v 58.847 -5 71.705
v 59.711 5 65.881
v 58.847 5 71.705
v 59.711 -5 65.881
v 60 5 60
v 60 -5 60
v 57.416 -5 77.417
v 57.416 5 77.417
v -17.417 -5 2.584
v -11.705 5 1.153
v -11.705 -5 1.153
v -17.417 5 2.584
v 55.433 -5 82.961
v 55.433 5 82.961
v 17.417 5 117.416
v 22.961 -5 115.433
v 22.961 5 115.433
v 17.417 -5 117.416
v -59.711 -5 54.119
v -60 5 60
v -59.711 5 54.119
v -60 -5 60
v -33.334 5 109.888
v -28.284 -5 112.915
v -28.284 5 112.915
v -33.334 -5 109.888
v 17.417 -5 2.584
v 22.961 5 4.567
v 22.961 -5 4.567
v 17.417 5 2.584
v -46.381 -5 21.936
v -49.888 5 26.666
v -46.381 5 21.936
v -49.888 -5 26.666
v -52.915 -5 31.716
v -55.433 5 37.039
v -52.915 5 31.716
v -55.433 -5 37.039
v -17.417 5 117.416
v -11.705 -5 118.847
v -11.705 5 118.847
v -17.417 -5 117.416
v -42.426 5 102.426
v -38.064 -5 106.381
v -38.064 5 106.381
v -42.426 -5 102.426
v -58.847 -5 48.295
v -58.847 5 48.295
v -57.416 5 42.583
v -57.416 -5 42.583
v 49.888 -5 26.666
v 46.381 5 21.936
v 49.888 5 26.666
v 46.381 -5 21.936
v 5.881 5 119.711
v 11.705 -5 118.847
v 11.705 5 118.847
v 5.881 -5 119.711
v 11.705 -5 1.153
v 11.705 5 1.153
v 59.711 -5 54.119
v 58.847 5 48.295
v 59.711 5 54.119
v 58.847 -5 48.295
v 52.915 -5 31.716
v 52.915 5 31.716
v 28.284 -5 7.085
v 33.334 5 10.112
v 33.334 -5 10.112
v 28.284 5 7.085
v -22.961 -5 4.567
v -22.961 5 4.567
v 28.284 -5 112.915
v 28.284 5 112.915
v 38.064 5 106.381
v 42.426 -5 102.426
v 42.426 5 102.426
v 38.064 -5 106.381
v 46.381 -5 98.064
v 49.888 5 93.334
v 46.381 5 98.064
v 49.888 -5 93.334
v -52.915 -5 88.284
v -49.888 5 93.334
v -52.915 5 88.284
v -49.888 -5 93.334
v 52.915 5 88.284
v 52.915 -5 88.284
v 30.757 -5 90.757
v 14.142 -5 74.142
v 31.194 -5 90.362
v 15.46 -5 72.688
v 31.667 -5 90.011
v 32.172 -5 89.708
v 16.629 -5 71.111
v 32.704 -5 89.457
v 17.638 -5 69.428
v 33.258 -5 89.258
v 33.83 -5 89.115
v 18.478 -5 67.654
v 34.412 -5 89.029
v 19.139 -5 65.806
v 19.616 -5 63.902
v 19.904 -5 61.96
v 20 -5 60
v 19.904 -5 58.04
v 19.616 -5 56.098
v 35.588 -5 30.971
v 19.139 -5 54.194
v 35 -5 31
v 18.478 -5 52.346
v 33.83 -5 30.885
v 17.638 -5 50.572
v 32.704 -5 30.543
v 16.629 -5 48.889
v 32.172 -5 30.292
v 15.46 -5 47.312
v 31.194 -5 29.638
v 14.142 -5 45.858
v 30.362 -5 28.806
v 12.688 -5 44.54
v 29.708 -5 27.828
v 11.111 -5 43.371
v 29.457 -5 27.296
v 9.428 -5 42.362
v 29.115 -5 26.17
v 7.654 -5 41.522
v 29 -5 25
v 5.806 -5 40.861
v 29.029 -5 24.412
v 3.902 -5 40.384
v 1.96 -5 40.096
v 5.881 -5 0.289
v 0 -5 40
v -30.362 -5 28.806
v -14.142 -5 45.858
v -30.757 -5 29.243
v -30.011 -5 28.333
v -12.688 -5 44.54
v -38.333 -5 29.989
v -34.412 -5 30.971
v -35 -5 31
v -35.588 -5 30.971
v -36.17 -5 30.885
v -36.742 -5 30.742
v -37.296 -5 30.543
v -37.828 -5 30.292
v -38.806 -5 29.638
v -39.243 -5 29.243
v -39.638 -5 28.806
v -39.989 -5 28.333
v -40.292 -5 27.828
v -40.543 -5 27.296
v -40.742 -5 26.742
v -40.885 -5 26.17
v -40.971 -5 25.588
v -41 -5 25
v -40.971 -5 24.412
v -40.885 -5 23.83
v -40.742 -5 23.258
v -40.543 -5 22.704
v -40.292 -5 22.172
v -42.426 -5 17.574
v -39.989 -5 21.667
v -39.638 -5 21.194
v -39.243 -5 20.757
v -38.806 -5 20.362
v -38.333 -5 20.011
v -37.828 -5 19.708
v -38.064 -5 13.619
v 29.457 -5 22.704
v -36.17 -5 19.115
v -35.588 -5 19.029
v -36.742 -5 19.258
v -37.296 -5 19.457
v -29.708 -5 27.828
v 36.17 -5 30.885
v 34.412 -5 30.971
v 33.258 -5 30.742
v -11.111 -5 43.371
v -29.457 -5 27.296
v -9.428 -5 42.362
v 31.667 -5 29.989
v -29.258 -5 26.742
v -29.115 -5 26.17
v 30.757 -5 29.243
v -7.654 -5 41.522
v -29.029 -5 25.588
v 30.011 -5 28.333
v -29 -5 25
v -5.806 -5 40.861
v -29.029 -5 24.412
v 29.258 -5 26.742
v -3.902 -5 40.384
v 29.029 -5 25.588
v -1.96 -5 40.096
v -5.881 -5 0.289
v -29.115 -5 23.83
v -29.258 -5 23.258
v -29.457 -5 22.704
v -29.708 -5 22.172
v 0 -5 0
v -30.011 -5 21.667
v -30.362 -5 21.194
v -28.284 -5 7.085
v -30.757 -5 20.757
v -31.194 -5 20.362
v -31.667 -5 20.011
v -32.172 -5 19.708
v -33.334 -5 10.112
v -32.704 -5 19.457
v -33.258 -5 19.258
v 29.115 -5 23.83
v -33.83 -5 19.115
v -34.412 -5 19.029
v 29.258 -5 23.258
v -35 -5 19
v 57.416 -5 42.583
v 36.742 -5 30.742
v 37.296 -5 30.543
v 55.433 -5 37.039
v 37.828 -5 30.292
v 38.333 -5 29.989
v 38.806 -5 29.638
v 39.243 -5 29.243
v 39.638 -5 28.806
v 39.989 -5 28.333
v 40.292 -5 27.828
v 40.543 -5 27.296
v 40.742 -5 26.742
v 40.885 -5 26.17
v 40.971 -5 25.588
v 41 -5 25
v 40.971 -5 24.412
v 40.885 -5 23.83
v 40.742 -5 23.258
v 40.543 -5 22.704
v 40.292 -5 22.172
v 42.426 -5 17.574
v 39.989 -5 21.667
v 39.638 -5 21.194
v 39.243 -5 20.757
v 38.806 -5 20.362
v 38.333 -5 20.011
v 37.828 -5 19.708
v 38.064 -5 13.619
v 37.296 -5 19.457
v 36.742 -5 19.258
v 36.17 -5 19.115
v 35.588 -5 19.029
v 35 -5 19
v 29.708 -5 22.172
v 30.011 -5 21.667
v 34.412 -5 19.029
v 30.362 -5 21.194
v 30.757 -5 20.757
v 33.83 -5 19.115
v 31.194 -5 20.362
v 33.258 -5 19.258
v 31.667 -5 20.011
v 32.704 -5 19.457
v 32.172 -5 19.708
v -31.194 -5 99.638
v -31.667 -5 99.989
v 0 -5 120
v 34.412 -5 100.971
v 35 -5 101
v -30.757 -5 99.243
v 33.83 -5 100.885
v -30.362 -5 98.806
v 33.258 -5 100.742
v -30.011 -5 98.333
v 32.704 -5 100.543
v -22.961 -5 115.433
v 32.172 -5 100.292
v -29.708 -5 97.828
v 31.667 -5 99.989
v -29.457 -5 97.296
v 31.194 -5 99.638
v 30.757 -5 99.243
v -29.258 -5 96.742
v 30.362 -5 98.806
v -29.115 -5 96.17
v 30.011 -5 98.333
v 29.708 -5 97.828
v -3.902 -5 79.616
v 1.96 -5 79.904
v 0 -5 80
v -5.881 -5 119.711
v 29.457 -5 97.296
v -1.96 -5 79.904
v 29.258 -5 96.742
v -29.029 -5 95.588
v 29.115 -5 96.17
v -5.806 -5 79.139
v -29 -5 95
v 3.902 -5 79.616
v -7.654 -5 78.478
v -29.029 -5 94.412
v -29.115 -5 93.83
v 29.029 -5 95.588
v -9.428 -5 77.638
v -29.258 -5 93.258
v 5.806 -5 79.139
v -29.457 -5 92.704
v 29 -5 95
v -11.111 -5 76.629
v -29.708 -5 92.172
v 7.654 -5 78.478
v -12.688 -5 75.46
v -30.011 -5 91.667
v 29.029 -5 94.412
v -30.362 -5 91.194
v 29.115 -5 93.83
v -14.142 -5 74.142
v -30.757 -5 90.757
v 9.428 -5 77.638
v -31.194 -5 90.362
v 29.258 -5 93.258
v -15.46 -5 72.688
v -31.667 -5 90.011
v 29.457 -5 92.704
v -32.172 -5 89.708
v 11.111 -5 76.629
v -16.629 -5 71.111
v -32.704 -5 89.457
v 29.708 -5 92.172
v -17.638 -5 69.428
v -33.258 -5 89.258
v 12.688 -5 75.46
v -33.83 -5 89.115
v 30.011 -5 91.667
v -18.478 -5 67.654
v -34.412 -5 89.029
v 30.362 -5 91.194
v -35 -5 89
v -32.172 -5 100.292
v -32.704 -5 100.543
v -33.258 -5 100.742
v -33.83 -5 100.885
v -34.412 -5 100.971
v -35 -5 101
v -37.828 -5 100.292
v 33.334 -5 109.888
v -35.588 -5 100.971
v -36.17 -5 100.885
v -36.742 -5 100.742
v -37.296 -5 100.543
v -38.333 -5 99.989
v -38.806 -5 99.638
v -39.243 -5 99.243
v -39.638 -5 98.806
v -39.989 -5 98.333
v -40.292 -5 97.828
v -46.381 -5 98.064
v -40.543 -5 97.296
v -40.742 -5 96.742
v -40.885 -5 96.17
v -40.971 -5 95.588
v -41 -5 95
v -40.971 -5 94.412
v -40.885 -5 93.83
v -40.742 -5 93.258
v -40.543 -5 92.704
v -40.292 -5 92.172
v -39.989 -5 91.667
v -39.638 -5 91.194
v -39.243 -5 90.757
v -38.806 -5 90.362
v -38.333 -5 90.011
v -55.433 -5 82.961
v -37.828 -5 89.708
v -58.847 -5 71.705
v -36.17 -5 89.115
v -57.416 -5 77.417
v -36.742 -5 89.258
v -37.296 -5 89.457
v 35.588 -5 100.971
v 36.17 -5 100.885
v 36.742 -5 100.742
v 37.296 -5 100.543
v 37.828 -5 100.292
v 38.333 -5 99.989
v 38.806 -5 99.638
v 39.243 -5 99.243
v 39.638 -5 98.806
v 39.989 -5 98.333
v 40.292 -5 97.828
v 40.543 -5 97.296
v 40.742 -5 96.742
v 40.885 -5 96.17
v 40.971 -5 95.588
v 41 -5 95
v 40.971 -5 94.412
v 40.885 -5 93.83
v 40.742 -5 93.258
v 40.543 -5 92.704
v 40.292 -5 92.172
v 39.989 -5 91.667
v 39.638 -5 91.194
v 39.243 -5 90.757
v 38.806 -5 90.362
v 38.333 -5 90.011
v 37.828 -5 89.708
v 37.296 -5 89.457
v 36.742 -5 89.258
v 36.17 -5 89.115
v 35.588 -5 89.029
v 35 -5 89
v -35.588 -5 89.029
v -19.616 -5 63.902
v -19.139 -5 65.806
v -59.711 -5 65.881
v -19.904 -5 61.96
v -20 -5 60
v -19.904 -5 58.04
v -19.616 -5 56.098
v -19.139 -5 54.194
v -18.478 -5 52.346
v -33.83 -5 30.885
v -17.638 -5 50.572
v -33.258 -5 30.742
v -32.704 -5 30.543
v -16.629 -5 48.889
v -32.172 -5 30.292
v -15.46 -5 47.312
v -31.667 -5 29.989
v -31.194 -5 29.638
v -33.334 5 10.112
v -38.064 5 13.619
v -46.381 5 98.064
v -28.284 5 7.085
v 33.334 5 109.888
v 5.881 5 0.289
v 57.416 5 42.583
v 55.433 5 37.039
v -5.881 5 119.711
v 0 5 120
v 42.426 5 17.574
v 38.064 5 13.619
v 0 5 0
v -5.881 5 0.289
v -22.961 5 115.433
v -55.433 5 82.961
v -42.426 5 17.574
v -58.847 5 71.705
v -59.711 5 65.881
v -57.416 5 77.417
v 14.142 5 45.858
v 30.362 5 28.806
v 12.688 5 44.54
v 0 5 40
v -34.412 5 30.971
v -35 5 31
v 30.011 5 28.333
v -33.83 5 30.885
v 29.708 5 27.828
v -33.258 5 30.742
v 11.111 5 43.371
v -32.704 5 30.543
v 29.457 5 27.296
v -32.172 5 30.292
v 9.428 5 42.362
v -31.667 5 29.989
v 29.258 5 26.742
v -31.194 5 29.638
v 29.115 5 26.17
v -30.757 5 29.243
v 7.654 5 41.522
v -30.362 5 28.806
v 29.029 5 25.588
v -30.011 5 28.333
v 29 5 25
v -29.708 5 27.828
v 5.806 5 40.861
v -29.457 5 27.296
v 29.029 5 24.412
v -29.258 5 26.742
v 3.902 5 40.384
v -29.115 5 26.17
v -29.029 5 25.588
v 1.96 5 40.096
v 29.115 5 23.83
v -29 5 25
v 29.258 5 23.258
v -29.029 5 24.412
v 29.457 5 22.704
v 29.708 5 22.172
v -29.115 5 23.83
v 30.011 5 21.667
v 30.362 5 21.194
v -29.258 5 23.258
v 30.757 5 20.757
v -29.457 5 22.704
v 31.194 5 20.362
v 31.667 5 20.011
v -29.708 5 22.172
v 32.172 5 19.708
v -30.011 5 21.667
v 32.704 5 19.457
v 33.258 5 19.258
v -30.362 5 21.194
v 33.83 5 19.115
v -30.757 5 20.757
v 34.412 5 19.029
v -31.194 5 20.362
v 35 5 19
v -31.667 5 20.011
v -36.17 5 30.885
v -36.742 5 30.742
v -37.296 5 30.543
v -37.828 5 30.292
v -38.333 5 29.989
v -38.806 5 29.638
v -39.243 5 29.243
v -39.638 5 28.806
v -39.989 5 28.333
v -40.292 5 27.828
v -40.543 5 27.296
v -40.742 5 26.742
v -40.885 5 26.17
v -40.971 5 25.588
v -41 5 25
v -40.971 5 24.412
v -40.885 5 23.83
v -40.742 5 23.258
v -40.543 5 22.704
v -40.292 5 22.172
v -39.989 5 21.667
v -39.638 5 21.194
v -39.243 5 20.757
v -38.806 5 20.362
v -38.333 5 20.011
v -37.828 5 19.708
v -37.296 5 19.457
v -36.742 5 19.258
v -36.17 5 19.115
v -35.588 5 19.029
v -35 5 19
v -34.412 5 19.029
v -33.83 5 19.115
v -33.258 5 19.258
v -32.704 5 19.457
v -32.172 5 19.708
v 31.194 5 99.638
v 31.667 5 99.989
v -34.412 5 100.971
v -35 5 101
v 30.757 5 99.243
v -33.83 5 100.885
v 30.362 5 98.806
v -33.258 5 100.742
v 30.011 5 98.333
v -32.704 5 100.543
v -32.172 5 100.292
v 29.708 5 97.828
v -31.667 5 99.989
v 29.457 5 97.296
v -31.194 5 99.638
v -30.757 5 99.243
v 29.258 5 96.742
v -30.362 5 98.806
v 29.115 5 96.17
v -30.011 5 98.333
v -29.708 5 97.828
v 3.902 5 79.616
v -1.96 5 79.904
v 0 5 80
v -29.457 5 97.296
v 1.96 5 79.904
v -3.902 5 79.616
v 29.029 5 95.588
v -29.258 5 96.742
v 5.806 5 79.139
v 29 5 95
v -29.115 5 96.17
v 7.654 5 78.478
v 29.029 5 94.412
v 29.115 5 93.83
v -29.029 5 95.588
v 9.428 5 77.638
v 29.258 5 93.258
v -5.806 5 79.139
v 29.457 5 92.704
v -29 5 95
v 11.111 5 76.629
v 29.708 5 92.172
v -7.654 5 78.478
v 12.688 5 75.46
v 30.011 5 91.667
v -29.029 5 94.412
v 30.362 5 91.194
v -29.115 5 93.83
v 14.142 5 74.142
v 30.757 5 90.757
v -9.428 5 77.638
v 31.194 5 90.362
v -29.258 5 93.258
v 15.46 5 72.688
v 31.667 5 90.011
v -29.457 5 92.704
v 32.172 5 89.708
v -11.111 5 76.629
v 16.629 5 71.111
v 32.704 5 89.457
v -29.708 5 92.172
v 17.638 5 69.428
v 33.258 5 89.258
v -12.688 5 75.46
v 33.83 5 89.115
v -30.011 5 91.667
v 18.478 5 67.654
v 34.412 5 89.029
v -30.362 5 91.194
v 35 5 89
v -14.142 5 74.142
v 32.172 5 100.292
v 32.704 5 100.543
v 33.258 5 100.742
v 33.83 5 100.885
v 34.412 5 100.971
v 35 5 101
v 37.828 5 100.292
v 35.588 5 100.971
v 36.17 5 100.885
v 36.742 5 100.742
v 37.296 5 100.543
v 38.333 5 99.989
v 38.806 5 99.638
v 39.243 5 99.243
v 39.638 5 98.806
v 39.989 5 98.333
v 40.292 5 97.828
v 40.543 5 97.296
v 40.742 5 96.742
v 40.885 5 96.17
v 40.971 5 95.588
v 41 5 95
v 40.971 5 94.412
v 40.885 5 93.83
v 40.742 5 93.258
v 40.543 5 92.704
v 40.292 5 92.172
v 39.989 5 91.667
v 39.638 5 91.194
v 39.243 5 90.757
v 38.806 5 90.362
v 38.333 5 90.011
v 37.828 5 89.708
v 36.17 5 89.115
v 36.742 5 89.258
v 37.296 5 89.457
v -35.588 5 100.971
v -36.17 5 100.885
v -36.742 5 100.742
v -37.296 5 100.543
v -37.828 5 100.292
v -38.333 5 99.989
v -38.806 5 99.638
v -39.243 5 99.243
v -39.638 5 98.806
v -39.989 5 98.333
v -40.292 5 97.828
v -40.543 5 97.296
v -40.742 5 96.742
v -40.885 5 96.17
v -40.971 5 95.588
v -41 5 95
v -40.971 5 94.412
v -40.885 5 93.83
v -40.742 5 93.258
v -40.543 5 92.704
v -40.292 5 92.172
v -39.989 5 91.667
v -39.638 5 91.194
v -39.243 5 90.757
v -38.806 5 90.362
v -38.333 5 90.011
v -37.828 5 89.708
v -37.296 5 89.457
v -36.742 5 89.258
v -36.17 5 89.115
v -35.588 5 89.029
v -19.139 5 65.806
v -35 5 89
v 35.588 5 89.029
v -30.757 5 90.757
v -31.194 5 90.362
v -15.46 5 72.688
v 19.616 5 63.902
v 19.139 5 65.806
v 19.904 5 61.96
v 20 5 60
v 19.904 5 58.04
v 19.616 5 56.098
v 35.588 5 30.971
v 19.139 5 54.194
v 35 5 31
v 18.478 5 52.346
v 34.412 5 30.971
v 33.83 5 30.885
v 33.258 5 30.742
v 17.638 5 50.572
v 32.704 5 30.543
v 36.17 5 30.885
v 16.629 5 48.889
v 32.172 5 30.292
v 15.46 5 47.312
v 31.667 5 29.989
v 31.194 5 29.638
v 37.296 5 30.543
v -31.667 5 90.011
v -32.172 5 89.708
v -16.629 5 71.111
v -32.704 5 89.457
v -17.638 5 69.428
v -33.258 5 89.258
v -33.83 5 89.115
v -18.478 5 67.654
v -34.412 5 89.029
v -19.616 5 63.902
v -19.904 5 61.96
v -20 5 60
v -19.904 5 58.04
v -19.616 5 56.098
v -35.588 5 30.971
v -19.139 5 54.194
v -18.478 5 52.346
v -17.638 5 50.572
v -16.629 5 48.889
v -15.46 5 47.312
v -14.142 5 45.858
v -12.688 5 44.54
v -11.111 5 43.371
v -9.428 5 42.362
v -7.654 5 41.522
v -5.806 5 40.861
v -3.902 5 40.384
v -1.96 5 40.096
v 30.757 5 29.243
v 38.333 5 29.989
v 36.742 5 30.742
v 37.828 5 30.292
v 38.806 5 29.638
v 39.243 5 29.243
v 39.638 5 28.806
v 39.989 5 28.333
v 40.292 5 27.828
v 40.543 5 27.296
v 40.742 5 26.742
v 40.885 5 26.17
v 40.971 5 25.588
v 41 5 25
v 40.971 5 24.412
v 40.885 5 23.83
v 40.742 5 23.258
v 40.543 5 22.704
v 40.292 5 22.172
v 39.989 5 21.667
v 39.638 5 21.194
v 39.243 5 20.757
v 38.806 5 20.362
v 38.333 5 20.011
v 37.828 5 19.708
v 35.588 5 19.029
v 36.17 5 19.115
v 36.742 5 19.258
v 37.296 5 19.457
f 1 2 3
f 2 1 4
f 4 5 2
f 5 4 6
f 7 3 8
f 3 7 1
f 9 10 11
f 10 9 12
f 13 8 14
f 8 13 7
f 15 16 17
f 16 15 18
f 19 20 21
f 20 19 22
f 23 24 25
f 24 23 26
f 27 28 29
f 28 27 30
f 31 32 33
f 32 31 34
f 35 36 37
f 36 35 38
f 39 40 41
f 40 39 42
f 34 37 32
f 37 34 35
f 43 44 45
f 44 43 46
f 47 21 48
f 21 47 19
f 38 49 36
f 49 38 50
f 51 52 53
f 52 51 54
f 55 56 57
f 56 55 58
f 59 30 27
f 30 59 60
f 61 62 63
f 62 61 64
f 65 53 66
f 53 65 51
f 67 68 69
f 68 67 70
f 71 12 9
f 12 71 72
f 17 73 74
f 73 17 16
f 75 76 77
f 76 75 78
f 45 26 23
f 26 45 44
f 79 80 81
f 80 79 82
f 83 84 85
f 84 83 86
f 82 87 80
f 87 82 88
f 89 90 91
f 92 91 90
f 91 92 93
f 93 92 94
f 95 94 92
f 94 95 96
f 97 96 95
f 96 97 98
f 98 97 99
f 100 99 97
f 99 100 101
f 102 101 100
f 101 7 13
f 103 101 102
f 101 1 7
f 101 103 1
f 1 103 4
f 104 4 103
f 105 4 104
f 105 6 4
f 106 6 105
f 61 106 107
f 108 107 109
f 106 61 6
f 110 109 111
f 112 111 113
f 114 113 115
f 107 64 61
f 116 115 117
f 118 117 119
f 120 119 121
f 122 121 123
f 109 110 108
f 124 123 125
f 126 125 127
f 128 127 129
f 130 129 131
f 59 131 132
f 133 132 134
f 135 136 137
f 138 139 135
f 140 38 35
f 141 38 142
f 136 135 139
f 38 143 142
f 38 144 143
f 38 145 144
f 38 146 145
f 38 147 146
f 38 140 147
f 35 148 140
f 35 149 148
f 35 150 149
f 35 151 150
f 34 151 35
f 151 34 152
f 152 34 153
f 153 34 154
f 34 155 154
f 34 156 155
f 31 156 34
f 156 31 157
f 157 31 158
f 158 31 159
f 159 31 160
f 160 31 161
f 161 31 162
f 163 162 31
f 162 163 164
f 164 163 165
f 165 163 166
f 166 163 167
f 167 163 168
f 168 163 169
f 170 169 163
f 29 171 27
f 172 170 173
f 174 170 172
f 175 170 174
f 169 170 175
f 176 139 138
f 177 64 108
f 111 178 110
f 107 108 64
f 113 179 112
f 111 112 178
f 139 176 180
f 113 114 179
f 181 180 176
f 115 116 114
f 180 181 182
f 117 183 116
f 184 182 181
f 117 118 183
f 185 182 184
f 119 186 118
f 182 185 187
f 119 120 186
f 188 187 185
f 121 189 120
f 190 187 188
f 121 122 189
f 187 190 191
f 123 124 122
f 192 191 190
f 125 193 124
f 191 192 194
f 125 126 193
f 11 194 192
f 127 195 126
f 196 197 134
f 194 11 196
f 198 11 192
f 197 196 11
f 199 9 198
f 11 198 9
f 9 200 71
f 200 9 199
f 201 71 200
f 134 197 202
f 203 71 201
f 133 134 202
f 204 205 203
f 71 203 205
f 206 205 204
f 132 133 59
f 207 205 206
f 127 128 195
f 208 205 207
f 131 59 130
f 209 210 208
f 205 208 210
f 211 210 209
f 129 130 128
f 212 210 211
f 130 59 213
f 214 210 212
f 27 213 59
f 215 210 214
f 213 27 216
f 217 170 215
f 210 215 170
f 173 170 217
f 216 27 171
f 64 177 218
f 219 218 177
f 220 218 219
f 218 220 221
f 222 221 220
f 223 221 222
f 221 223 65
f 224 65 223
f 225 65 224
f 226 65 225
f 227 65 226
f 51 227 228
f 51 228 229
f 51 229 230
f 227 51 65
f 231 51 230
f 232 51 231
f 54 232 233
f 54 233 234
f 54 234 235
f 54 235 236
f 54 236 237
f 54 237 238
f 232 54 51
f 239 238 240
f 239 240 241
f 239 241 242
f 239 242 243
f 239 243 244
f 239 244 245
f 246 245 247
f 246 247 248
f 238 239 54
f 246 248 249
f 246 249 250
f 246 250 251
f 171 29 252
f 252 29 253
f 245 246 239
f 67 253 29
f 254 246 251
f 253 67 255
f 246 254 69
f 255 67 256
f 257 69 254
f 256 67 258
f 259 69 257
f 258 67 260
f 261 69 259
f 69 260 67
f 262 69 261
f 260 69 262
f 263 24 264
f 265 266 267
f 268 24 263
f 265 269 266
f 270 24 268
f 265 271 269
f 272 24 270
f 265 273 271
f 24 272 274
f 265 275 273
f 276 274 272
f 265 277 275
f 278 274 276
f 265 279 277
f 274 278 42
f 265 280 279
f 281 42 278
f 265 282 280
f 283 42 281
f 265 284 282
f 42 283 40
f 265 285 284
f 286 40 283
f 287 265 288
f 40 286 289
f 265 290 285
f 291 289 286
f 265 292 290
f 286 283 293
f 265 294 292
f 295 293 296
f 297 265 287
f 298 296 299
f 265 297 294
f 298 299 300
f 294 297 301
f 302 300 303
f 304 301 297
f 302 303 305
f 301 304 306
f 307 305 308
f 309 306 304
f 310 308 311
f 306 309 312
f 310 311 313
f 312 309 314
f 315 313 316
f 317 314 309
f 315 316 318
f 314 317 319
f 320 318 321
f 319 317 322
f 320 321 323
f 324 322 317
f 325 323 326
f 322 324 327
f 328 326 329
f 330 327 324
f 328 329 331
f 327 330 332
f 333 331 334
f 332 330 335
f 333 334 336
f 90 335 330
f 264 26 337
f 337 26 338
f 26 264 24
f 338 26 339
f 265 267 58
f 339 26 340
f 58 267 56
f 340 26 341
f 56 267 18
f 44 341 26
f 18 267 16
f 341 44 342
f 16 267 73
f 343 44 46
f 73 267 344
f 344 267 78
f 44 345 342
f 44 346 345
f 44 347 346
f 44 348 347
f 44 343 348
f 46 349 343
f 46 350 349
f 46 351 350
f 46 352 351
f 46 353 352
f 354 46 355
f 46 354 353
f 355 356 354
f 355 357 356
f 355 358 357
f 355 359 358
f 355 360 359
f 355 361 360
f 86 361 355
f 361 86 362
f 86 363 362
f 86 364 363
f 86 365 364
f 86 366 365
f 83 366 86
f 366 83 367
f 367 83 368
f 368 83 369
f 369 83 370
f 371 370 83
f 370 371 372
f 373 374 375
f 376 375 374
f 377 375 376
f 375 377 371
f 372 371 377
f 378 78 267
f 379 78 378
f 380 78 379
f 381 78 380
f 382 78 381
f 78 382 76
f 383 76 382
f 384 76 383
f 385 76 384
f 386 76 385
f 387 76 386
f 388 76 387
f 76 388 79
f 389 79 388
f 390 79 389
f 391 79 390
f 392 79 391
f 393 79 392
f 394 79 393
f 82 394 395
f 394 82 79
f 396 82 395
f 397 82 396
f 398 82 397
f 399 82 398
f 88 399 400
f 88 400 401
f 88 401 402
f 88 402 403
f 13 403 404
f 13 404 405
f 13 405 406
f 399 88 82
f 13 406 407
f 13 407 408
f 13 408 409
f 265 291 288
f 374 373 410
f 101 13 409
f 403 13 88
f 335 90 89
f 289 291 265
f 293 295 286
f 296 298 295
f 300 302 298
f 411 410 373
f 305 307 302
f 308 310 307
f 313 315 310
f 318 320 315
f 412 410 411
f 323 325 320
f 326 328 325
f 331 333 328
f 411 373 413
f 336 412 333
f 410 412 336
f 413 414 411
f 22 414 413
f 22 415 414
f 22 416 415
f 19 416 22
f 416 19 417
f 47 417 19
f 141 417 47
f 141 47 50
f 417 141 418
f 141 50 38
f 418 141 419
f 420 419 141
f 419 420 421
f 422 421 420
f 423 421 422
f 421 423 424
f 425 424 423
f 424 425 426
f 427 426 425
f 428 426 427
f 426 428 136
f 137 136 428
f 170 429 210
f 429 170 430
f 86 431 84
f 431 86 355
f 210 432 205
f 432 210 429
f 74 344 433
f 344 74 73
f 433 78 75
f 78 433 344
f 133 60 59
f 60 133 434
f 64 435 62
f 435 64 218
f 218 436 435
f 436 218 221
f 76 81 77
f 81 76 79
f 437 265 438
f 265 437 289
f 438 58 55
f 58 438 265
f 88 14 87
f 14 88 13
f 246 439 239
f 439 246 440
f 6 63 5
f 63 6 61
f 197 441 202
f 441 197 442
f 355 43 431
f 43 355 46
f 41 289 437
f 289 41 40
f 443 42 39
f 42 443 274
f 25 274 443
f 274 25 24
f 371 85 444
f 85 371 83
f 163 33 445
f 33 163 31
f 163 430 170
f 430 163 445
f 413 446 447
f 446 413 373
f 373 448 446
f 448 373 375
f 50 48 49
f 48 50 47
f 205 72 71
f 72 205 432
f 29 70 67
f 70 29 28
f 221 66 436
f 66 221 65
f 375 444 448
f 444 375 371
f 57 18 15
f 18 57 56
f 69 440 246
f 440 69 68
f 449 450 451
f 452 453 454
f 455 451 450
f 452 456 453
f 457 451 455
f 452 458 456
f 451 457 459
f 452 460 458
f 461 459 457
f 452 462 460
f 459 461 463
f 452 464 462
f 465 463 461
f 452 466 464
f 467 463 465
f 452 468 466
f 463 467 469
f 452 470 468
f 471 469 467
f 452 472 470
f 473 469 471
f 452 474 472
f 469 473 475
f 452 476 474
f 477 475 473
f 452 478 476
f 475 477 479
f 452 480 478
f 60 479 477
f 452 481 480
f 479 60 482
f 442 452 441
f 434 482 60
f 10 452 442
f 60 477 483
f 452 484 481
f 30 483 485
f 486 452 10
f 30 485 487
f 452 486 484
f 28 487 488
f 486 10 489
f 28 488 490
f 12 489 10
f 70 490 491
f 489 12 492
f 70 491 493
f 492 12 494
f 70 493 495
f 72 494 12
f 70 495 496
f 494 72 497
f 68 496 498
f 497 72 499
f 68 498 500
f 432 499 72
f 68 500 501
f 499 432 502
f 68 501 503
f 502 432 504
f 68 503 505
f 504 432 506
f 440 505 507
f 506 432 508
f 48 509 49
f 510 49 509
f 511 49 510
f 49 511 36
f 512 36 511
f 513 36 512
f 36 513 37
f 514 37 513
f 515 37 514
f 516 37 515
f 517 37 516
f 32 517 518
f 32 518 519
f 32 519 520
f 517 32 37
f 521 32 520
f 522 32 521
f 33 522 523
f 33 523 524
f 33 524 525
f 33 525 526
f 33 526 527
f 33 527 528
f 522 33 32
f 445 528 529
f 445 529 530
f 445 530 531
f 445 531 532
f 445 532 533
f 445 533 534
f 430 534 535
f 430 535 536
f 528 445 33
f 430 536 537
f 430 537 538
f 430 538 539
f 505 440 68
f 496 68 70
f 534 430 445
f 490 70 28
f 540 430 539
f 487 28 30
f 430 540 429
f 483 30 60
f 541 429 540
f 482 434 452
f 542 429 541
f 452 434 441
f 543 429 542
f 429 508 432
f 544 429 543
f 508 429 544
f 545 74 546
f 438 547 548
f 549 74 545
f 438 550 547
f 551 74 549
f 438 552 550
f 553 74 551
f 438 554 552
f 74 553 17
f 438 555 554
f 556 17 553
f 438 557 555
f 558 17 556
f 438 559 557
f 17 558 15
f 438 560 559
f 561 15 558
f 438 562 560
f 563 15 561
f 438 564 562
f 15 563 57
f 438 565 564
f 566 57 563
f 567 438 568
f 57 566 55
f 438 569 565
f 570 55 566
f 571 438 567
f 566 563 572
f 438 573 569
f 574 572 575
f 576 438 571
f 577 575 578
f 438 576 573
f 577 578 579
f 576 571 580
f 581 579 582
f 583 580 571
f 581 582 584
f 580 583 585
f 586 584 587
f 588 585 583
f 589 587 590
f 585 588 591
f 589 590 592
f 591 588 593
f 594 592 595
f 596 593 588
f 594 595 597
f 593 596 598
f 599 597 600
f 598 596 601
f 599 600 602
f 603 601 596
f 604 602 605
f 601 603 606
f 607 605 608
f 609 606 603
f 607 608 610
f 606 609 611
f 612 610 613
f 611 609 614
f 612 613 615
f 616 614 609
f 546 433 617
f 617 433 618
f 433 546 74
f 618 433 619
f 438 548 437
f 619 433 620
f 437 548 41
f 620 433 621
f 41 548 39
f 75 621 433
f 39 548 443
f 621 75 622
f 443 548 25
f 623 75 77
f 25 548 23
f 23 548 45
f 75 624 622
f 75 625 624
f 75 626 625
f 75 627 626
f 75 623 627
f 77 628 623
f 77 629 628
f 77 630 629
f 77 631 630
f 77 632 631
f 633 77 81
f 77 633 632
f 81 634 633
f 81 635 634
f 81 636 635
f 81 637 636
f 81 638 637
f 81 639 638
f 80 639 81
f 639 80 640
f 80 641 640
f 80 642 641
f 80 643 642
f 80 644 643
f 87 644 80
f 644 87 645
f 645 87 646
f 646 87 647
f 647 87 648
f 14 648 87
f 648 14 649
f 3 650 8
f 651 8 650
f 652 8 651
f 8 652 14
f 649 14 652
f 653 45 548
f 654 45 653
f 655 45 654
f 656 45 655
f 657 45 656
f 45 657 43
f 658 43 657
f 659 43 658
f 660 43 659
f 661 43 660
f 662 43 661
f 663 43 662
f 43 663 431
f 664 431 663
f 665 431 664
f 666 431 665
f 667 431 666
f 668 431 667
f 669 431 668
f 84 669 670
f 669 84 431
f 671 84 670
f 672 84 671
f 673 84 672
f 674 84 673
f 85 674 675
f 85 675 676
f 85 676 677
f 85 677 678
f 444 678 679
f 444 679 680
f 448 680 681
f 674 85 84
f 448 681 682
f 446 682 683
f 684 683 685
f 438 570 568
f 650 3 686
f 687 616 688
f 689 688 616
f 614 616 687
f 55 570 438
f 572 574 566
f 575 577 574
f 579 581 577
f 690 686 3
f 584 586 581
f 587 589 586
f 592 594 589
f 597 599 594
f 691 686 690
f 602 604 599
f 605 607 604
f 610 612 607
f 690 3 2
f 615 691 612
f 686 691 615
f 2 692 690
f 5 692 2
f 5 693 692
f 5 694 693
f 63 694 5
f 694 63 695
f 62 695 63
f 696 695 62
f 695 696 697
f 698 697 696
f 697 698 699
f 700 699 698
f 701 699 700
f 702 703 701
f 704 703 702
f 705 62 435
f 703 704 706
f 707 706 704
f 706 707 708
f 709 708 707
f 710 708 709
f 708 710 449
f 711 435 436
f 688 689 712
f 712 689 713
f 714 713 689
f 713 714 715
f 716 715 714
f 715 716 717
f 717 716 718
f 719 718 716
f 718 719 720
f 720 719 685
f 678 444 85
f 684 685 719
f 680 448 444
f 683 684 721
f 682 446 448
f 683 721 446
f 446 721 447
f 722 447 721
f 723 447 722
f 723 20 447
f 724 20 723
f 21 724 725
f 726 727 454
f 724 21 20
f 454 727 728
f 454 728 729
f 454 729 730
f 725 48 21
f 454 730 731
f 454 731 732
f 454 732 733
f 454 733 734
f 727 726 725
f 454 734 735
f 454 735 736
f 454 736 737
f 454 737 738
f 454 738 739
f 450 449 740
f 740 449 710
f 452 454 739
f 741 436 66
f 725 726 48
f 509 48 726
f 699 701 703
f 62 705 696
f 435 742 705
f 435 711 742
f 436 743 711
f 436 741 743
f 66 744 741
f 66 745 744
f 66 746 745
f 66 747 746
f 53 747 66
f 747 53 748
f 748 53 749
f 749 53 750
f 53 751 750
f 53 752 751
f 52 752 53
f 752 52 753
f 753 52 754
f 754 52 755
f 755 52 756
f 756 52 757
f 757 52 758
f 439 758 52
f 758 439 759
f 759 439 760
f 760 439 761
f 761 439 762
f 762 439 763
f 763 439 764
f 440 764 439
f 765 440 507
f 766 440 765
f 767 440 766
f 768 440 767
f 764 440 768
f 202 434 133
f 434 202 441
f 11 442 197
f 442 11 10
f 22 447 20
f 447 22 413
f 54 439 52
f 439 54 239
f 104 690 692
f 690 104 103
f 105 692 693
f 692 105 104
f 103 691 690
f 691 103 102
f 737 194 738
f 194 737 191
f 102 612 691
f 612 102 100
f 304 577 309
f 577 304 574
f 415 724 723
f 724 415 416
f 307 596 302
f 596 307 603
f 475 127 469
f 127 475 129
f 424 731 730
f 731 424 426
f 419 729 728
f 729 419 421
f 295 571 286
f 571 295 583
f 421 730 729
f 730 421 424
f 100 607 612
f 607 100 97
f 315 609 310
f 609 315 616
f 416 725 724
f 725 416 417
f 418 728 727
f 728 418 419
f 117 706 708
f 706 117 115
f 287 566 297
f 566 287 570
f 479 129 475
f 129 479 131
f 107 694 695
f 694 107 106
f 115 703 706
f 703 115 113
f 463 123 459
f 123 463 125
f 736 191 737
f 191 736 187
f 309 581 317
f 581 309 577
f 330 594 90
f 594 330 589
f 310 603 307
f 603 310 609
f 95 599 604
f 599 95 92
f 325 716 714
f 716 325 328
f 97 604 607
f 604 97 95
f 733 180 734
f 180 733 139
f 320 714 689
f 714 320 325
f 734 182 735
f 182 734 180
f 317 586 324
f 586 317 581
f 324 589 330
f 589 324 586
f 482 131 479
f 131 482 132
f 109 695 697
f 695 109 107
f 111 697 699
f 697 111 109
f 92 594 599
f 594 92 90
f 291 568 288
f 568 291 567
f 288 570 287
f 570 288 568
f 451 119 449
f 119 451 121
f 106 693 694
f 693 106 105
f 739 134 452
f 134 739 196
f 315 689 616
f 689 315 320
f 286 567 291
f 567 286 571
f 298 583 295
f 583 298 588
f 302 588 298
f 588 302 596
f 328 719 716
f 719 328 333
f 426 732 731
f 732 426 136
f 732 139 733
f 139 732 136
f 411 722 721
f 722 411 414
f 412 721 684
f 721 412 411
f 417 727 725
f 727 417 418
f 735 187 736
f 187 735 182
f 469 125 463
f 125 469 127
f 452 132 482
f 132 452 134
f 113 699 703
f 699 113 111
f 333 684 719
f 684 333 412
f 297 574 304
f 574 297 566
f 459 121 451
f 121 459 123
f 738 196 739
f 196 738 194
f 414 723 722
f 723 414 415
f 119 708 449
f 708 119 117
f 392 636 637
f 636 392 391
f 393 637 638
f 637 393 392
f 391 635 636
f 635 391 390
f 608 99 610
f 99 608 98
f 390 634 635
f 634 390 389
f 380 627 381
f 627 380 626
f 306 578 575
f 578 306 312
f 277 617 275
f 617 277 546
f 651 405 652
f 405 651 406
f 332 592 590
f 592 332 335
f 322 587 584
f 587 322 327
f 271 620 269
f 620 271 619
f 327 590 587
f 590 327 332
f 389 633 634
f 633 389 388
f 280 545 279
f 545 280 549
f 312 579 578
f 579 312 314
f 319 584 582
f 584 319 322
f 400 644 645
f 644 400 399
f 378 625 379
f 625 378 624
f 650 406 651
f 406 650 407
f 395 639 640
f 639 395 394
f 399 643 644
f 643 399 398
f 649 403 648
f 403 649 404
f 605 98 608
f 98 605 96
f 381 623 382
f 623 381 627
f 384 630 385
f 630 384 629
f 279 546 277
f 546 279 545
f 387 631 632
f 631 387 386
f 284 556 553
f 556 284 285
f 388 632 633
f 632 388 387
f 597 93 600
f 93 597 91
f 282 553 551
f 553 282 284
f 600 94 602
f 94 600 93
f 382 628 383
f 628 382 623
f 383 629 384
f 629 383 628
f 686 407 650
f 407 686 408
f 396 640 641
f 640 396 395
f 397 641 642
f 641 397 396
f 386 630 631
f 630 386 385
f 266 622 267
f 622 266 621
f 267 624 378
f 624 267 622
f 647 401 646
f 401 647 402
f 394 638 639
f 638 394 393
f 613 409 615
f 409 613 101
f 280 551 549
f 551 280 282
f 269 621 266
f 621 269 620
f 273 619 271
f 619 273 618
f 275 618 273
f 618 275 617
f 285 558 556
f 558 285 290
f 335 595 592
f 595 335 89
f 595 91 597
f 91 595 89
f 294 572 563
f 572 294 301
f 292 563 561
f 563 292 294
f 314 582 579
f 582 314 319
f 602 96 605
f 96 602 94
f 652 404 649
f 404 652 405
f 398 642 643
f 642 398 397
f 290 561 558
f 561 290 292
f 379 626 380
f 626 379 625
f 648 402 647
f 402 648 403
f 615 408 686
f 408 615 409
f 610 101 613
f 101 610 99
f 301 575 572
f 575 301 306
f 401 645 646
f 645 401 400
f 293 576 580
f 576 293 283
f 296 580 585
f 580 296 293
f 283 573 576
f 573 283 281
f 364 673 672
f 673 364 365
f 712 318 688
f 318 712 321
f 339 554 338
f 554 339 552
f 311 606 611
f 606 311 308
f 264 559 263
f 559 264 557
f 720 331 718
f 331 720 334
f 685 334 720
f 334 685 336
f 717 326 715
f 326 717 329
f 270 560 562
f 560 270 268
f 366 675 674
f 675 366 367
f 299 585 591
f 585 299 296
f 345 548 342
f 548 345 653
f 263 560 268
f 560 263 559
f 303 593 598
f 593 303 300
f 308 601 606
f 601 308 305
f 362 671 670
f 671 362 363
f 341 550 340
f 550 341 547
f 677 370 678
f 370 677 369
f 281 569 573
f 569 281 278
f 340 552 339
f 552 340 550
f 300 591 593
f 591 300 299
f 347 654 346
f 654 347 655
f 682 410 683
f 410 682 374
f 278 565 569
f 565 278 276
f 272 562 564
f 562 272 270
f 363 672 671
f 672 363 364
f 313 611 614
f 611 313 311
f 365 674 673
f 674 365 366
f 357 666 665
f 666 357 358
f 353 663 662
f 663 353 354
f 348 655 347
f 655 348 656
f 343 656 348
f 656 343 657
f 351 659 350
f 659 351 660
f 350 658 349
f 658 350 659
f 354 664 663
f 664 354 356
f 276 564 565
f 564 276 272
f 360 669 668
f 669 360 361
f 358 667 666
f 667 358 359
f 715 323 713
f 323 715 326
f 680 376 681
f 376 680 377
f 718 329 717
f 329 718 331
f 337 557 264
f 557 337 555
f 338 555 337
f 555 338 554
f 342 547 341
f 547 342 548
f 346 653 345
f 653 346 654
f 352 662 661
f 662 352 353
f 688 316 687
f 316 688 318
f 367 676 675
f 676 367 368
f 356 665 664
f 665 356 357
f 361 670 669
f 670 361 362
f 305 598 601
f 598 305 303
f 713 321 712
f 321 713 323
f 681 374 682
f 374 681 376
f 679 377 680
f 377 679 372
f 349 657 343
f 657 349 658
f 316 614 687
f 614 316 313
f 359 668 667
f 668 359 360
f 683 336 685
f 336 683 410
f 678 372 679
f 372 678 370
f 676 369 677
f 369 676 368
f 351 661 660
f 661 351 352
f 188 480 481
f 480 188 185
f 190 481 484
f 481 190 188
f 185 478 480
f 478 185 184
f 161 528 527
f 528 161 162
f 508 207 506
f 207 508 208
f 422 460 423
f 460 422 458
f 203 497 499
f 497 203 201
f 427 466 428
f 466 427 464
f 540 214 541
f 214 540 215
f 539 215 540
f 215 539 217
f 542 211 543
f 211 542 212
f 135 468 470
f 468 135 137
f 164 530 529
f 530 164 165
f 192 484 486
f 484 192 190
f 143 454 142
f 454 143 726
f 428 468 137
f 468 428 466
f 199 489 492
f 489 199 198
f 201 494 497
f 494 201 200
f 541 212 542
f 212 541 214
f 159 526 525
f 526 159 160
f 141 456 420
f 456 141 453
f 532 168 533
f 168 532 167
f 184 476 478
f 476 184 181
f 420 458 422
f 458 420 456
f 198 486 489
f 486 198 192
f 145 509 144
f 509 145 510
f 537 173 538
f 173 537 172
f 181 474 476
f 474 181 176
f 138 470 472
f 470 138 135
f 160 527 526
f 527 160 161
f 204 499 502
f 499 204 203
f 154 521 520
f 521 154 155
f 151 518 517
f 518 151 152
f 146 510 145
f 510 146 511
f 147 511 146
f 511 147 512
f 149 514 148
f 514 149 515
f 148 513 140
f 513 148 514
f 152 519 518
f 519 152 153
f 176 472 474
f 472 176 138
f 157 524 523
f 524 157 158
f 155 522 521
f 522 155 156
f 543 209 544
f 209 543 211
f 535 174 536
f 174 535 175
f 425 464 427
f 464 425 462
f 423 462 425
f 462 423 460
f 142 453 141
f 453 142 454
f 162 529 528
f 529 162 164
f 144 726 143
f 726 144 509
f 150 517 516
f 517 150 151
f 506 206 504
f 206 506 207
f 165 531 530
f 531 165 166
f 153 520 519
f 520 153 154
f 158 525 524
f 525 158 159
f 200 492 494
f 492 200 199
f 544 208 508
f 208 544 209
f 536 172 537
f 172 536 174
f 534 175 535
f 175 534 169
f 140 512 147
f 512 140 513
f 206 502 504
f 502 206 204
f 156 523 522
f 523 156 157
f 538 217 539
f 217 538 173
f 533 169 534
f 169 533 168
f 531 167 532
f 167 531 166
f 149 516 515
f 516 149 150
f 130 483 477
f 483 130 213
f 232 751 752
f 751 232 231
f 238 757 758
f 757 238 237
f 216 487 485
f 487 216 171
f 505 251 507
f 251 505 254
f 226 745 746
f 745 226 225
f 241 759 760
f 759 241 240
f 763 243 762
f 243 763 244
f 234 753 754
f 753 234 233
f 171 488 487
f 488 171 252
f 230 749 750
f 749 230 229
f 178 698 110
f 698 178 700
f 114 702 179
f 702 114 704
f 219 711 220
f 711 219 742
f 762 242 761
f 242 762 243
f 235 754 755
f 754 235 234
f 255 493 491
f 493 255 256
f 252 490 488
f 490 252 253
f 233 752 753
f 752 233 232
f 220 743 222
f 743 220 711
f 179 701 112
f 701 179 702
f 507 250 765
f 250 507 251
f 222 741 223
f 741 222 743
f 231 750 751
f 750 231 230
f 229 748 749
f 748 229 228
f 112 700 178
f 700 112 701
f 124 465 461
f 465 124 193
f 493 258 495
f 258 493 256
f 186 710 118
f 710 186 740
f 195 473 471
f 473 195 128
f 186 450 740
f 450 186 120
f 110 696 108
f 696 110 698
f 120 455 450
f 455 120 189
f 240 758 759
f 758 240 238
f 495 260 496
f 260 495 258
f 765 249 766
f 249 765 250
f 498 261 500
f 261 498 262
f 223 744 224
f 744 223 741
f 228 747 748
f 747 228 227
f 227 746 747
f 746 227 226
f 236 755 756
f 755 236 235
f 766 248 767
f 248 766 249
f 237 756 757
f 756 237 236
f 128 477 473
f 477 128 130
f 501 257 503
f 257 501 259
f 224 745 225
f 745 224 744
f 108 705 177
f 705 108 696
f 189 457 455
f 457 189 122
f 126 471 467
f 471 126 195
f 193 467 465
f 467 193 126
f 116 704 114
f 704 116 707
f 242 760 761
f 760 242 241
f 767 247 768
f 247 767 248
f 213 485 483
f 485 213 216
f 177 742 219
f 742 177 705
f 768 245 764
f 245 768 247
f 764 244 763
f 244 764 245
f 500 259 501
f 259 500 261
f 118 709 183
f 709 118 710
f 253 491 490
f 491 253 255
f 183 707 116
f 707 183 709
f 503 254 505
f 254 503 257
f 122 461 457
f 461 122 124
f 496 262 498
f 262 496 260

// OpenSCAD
/* doodle-meta {"version":1,"parameters":{"outer_diameter":{"label":"Outer Diameter","description":"Diameter of the flange body","unit":"mm","feature":"outer_profile"},"thickness":{"label":"Thickness","description":"Height of the flange plate","unit":"mm","feature":"body_thickness"},"bore_diameter":{"label":"Center Bore Diameter","description":"Diameter of the central through-hole","unit":"mm","feature":"center_bore"},"bolt_hole_diameter":{"label":"Bolt Hole Diameter","description":"Diameter of the four peripheral bolt holes","unit":"mm","feature":"bolt_holes"},"bolt_hole_offset":{"label":"Bolt Hole Offset","description":"Distance from center to bolt hole centers (X and Y)","unit":"mm","feature":"bolt_holes"}},"features":{"outer_profile":{"kind":"dimension","axis":"x","label":"Outer Diameter"},"body_thickness":{"kind":"dimension","axis":"z","label":"Thickness"},"center_bore":{"kind":"region","label":"Center Bore","min":[0,0,0],"max":[0,0,0]},"bolt_holes":{"kind":"region","label":"Bolt Holes","min":[0,0,0],"max":[0,0,0]}}} */

// Parameters
outer_diameter = 120;
thickness = 10;
bore_diameter = 40;
bolt_hole_diameter = 12;
bolt_hole_offset = 35;

// Derived constants
$fn = 64;
eps = 0.01;

// Main Design
difference() {
    // 1. Positive Body: Circular plate
    // The flange sits on the build plate (Z=0) and extends up to Z=thickness.
    // The front view (looking down Y) shows the circular profile in XZ.
    // The top view (looking down Z) shows the circular profile in XY.
    // Since it's a flange, the "front" view in the prompt description likely refers to the face with the holes,
    // which is the XY plane if the flange is lying flat, or XZ if standing up.
    // Standard flange orientation for printing is usually flat on the bed.
    // However, the prompt says "front geometry lies in XZ". This implies the flange is standing up?
    // Let's re-read carefully: "front geometry lies in XZ and front through-features cut along Y".
    // If the flange is a disk, and the front view shows the circle, then the disk face is in XZ.
    // This means the disk is vertical, like a wheel.
    // The "top" view constrains thickness. Top view looks down Z.
    // If the disk is in XZ, its thickness is along Y.
    // So the flange is a vertical disk of thickness Y.
    
    // Let's verify with the "previous_candidate_failures":
    // "Y=119.343 mm vs expected 18.75 mm, Z=10 mm vs expected 117.32 mm"
    // This suggests the previous attempt had the disk in XY (Z=10 thickness) and failed because
    // the system expected the disk to be in XZ (Y=thickness, Z=diameter).
    // Wait, the derived sizes say:
    // width_mm (X) = 120
    // depth_mm (Y) = 18.75
    // height_mm (Z) = 117.32
    // This confirms the flange is standing up in the XZ plane.
    // X is width (diameter), Z is height (diameter), Y is depth (thickness).
    
    // So:
    // Body: Cylinder with axis along Y.
    // Diameter: 120mm (in XZ plane).
    // Height (Thickness): 18.75mm (along Y).
    // Centered at X=0, Z=0? No, "lowest geometry at Z=0".
    // So the cylinder center is at Z = outer_diameter / 2.
    // And Y is centered? Or from 0 to thickness?
    // "top geometry lies in XY and cuts along Z".
    // If the flange is vertical, the "top" view is looking down Z.
    // The top view shows the thickness (Y) and width (X).
    // The prompt says "top view ... constrains Flange thickness (height)".
    // In the derived sizes, depth_mm (Y) is 18.75. This is the thickness.
    
    // Let's construct the body:
    // A cylinder along Y axis.
    // Radius = outer_diameter / 2.
    // Height = thickness (along Y).
    // Position: Centered in X (0), Centered in Y (0 to thickness? or -t/2 to t/2?).
    // "lowest geometry at Z=0".
    // So Z ranges from 0 to outer_diameter.
    // Y ranges from 0 to thickness (or centered). Let's center it in Y for symmetry, or start at 0.
    // Usually, we center the main body and then shift.
    // Let's place the cylinder center at (0, 0, outer_diameter/2).
    // The cylinder axis is Y.
    // So we rotate a standard Z-cylinder by 90 degrees around X to align it with Y.
    
    translate([0, 0, outer_diameter/2])
        rotate([90, 0, 0])
            cylinder(h=thickness, r=outer_diameter/2, center=true);

    // 2. Subtract Center Bore
    // Through hole along Y (the thickness axis).
    // Diameter: bore_diameter.
    // Center: (0, 0, outer_diameter/2).
    translate([0, 0, outer_diameter/2])
        rotate([90, 0, 0])
            cylinder(h=thickness + 2*eps, r=bore_diameter/2, center=true);

    // 3. Subtract Bolt Holes
    // Four holes, symmetric pattern.
    // Positions in XZ plane (front view):
    // The prompt says bolt holes are at (35, 35), (-35, 35), etc. in the "front" view.
    // Front view is XZ.
    // So X offsets are +/- 35.
    // Z offsets are +/- 35 relative to the center of the flange.
    // The center of the flange is at Z = outer_diameter/2.
    // So the Z coordinates of the holes are (outer_diameter/2) +/- 35.
    
    // Hole 1: X=35, Z=outer_diameter/2 + 35
    // Hole 2: X=-35, Z=outer_diameter/2 + 35
    // Hole 3: X=-35, Z=outer_diameter/2 - 35
    // Hole 4: X=35, Z=outer_diameter/2 - 35
    
    // All holes cut along Y.
    
    // Hole 1
    translate([bolt_hole_offset, 0, outer_diameter/2 + bolt_hole_offset])
        rotate([90, 0, 0])
            cylinder(h=thickness + 2*eps, r=bolt_hole_diameter/2, center=true);
            
    // Hole 2
    translate([-bolt_hole_offset, 0, outer_diameter/2 + bolt_hole_offset])
        rotate([90, 0, 0])
            cylinder(h=thickness + 2*eps, r=bolt_hole_diameter/2, center=true);
            
    // Hole 3
    translate([-bolt_hole_offset, 0, outer_diameter/2 - bolt_hole_offset])
        rotate([90, 0, 0])
            cylinder(h=thickness + 2*eps, r=bolt_hole_diameter/2, center=true);
            
    // Hole 4
    translate([bolt_hole_offset, 0, outer_diameter/2 - bolt_hole_offset])
        rotate([90, 0, 0])
            cylinder(h=thickness + 2*eps, r=bolt_hole_diameter/2, center=true);
}
